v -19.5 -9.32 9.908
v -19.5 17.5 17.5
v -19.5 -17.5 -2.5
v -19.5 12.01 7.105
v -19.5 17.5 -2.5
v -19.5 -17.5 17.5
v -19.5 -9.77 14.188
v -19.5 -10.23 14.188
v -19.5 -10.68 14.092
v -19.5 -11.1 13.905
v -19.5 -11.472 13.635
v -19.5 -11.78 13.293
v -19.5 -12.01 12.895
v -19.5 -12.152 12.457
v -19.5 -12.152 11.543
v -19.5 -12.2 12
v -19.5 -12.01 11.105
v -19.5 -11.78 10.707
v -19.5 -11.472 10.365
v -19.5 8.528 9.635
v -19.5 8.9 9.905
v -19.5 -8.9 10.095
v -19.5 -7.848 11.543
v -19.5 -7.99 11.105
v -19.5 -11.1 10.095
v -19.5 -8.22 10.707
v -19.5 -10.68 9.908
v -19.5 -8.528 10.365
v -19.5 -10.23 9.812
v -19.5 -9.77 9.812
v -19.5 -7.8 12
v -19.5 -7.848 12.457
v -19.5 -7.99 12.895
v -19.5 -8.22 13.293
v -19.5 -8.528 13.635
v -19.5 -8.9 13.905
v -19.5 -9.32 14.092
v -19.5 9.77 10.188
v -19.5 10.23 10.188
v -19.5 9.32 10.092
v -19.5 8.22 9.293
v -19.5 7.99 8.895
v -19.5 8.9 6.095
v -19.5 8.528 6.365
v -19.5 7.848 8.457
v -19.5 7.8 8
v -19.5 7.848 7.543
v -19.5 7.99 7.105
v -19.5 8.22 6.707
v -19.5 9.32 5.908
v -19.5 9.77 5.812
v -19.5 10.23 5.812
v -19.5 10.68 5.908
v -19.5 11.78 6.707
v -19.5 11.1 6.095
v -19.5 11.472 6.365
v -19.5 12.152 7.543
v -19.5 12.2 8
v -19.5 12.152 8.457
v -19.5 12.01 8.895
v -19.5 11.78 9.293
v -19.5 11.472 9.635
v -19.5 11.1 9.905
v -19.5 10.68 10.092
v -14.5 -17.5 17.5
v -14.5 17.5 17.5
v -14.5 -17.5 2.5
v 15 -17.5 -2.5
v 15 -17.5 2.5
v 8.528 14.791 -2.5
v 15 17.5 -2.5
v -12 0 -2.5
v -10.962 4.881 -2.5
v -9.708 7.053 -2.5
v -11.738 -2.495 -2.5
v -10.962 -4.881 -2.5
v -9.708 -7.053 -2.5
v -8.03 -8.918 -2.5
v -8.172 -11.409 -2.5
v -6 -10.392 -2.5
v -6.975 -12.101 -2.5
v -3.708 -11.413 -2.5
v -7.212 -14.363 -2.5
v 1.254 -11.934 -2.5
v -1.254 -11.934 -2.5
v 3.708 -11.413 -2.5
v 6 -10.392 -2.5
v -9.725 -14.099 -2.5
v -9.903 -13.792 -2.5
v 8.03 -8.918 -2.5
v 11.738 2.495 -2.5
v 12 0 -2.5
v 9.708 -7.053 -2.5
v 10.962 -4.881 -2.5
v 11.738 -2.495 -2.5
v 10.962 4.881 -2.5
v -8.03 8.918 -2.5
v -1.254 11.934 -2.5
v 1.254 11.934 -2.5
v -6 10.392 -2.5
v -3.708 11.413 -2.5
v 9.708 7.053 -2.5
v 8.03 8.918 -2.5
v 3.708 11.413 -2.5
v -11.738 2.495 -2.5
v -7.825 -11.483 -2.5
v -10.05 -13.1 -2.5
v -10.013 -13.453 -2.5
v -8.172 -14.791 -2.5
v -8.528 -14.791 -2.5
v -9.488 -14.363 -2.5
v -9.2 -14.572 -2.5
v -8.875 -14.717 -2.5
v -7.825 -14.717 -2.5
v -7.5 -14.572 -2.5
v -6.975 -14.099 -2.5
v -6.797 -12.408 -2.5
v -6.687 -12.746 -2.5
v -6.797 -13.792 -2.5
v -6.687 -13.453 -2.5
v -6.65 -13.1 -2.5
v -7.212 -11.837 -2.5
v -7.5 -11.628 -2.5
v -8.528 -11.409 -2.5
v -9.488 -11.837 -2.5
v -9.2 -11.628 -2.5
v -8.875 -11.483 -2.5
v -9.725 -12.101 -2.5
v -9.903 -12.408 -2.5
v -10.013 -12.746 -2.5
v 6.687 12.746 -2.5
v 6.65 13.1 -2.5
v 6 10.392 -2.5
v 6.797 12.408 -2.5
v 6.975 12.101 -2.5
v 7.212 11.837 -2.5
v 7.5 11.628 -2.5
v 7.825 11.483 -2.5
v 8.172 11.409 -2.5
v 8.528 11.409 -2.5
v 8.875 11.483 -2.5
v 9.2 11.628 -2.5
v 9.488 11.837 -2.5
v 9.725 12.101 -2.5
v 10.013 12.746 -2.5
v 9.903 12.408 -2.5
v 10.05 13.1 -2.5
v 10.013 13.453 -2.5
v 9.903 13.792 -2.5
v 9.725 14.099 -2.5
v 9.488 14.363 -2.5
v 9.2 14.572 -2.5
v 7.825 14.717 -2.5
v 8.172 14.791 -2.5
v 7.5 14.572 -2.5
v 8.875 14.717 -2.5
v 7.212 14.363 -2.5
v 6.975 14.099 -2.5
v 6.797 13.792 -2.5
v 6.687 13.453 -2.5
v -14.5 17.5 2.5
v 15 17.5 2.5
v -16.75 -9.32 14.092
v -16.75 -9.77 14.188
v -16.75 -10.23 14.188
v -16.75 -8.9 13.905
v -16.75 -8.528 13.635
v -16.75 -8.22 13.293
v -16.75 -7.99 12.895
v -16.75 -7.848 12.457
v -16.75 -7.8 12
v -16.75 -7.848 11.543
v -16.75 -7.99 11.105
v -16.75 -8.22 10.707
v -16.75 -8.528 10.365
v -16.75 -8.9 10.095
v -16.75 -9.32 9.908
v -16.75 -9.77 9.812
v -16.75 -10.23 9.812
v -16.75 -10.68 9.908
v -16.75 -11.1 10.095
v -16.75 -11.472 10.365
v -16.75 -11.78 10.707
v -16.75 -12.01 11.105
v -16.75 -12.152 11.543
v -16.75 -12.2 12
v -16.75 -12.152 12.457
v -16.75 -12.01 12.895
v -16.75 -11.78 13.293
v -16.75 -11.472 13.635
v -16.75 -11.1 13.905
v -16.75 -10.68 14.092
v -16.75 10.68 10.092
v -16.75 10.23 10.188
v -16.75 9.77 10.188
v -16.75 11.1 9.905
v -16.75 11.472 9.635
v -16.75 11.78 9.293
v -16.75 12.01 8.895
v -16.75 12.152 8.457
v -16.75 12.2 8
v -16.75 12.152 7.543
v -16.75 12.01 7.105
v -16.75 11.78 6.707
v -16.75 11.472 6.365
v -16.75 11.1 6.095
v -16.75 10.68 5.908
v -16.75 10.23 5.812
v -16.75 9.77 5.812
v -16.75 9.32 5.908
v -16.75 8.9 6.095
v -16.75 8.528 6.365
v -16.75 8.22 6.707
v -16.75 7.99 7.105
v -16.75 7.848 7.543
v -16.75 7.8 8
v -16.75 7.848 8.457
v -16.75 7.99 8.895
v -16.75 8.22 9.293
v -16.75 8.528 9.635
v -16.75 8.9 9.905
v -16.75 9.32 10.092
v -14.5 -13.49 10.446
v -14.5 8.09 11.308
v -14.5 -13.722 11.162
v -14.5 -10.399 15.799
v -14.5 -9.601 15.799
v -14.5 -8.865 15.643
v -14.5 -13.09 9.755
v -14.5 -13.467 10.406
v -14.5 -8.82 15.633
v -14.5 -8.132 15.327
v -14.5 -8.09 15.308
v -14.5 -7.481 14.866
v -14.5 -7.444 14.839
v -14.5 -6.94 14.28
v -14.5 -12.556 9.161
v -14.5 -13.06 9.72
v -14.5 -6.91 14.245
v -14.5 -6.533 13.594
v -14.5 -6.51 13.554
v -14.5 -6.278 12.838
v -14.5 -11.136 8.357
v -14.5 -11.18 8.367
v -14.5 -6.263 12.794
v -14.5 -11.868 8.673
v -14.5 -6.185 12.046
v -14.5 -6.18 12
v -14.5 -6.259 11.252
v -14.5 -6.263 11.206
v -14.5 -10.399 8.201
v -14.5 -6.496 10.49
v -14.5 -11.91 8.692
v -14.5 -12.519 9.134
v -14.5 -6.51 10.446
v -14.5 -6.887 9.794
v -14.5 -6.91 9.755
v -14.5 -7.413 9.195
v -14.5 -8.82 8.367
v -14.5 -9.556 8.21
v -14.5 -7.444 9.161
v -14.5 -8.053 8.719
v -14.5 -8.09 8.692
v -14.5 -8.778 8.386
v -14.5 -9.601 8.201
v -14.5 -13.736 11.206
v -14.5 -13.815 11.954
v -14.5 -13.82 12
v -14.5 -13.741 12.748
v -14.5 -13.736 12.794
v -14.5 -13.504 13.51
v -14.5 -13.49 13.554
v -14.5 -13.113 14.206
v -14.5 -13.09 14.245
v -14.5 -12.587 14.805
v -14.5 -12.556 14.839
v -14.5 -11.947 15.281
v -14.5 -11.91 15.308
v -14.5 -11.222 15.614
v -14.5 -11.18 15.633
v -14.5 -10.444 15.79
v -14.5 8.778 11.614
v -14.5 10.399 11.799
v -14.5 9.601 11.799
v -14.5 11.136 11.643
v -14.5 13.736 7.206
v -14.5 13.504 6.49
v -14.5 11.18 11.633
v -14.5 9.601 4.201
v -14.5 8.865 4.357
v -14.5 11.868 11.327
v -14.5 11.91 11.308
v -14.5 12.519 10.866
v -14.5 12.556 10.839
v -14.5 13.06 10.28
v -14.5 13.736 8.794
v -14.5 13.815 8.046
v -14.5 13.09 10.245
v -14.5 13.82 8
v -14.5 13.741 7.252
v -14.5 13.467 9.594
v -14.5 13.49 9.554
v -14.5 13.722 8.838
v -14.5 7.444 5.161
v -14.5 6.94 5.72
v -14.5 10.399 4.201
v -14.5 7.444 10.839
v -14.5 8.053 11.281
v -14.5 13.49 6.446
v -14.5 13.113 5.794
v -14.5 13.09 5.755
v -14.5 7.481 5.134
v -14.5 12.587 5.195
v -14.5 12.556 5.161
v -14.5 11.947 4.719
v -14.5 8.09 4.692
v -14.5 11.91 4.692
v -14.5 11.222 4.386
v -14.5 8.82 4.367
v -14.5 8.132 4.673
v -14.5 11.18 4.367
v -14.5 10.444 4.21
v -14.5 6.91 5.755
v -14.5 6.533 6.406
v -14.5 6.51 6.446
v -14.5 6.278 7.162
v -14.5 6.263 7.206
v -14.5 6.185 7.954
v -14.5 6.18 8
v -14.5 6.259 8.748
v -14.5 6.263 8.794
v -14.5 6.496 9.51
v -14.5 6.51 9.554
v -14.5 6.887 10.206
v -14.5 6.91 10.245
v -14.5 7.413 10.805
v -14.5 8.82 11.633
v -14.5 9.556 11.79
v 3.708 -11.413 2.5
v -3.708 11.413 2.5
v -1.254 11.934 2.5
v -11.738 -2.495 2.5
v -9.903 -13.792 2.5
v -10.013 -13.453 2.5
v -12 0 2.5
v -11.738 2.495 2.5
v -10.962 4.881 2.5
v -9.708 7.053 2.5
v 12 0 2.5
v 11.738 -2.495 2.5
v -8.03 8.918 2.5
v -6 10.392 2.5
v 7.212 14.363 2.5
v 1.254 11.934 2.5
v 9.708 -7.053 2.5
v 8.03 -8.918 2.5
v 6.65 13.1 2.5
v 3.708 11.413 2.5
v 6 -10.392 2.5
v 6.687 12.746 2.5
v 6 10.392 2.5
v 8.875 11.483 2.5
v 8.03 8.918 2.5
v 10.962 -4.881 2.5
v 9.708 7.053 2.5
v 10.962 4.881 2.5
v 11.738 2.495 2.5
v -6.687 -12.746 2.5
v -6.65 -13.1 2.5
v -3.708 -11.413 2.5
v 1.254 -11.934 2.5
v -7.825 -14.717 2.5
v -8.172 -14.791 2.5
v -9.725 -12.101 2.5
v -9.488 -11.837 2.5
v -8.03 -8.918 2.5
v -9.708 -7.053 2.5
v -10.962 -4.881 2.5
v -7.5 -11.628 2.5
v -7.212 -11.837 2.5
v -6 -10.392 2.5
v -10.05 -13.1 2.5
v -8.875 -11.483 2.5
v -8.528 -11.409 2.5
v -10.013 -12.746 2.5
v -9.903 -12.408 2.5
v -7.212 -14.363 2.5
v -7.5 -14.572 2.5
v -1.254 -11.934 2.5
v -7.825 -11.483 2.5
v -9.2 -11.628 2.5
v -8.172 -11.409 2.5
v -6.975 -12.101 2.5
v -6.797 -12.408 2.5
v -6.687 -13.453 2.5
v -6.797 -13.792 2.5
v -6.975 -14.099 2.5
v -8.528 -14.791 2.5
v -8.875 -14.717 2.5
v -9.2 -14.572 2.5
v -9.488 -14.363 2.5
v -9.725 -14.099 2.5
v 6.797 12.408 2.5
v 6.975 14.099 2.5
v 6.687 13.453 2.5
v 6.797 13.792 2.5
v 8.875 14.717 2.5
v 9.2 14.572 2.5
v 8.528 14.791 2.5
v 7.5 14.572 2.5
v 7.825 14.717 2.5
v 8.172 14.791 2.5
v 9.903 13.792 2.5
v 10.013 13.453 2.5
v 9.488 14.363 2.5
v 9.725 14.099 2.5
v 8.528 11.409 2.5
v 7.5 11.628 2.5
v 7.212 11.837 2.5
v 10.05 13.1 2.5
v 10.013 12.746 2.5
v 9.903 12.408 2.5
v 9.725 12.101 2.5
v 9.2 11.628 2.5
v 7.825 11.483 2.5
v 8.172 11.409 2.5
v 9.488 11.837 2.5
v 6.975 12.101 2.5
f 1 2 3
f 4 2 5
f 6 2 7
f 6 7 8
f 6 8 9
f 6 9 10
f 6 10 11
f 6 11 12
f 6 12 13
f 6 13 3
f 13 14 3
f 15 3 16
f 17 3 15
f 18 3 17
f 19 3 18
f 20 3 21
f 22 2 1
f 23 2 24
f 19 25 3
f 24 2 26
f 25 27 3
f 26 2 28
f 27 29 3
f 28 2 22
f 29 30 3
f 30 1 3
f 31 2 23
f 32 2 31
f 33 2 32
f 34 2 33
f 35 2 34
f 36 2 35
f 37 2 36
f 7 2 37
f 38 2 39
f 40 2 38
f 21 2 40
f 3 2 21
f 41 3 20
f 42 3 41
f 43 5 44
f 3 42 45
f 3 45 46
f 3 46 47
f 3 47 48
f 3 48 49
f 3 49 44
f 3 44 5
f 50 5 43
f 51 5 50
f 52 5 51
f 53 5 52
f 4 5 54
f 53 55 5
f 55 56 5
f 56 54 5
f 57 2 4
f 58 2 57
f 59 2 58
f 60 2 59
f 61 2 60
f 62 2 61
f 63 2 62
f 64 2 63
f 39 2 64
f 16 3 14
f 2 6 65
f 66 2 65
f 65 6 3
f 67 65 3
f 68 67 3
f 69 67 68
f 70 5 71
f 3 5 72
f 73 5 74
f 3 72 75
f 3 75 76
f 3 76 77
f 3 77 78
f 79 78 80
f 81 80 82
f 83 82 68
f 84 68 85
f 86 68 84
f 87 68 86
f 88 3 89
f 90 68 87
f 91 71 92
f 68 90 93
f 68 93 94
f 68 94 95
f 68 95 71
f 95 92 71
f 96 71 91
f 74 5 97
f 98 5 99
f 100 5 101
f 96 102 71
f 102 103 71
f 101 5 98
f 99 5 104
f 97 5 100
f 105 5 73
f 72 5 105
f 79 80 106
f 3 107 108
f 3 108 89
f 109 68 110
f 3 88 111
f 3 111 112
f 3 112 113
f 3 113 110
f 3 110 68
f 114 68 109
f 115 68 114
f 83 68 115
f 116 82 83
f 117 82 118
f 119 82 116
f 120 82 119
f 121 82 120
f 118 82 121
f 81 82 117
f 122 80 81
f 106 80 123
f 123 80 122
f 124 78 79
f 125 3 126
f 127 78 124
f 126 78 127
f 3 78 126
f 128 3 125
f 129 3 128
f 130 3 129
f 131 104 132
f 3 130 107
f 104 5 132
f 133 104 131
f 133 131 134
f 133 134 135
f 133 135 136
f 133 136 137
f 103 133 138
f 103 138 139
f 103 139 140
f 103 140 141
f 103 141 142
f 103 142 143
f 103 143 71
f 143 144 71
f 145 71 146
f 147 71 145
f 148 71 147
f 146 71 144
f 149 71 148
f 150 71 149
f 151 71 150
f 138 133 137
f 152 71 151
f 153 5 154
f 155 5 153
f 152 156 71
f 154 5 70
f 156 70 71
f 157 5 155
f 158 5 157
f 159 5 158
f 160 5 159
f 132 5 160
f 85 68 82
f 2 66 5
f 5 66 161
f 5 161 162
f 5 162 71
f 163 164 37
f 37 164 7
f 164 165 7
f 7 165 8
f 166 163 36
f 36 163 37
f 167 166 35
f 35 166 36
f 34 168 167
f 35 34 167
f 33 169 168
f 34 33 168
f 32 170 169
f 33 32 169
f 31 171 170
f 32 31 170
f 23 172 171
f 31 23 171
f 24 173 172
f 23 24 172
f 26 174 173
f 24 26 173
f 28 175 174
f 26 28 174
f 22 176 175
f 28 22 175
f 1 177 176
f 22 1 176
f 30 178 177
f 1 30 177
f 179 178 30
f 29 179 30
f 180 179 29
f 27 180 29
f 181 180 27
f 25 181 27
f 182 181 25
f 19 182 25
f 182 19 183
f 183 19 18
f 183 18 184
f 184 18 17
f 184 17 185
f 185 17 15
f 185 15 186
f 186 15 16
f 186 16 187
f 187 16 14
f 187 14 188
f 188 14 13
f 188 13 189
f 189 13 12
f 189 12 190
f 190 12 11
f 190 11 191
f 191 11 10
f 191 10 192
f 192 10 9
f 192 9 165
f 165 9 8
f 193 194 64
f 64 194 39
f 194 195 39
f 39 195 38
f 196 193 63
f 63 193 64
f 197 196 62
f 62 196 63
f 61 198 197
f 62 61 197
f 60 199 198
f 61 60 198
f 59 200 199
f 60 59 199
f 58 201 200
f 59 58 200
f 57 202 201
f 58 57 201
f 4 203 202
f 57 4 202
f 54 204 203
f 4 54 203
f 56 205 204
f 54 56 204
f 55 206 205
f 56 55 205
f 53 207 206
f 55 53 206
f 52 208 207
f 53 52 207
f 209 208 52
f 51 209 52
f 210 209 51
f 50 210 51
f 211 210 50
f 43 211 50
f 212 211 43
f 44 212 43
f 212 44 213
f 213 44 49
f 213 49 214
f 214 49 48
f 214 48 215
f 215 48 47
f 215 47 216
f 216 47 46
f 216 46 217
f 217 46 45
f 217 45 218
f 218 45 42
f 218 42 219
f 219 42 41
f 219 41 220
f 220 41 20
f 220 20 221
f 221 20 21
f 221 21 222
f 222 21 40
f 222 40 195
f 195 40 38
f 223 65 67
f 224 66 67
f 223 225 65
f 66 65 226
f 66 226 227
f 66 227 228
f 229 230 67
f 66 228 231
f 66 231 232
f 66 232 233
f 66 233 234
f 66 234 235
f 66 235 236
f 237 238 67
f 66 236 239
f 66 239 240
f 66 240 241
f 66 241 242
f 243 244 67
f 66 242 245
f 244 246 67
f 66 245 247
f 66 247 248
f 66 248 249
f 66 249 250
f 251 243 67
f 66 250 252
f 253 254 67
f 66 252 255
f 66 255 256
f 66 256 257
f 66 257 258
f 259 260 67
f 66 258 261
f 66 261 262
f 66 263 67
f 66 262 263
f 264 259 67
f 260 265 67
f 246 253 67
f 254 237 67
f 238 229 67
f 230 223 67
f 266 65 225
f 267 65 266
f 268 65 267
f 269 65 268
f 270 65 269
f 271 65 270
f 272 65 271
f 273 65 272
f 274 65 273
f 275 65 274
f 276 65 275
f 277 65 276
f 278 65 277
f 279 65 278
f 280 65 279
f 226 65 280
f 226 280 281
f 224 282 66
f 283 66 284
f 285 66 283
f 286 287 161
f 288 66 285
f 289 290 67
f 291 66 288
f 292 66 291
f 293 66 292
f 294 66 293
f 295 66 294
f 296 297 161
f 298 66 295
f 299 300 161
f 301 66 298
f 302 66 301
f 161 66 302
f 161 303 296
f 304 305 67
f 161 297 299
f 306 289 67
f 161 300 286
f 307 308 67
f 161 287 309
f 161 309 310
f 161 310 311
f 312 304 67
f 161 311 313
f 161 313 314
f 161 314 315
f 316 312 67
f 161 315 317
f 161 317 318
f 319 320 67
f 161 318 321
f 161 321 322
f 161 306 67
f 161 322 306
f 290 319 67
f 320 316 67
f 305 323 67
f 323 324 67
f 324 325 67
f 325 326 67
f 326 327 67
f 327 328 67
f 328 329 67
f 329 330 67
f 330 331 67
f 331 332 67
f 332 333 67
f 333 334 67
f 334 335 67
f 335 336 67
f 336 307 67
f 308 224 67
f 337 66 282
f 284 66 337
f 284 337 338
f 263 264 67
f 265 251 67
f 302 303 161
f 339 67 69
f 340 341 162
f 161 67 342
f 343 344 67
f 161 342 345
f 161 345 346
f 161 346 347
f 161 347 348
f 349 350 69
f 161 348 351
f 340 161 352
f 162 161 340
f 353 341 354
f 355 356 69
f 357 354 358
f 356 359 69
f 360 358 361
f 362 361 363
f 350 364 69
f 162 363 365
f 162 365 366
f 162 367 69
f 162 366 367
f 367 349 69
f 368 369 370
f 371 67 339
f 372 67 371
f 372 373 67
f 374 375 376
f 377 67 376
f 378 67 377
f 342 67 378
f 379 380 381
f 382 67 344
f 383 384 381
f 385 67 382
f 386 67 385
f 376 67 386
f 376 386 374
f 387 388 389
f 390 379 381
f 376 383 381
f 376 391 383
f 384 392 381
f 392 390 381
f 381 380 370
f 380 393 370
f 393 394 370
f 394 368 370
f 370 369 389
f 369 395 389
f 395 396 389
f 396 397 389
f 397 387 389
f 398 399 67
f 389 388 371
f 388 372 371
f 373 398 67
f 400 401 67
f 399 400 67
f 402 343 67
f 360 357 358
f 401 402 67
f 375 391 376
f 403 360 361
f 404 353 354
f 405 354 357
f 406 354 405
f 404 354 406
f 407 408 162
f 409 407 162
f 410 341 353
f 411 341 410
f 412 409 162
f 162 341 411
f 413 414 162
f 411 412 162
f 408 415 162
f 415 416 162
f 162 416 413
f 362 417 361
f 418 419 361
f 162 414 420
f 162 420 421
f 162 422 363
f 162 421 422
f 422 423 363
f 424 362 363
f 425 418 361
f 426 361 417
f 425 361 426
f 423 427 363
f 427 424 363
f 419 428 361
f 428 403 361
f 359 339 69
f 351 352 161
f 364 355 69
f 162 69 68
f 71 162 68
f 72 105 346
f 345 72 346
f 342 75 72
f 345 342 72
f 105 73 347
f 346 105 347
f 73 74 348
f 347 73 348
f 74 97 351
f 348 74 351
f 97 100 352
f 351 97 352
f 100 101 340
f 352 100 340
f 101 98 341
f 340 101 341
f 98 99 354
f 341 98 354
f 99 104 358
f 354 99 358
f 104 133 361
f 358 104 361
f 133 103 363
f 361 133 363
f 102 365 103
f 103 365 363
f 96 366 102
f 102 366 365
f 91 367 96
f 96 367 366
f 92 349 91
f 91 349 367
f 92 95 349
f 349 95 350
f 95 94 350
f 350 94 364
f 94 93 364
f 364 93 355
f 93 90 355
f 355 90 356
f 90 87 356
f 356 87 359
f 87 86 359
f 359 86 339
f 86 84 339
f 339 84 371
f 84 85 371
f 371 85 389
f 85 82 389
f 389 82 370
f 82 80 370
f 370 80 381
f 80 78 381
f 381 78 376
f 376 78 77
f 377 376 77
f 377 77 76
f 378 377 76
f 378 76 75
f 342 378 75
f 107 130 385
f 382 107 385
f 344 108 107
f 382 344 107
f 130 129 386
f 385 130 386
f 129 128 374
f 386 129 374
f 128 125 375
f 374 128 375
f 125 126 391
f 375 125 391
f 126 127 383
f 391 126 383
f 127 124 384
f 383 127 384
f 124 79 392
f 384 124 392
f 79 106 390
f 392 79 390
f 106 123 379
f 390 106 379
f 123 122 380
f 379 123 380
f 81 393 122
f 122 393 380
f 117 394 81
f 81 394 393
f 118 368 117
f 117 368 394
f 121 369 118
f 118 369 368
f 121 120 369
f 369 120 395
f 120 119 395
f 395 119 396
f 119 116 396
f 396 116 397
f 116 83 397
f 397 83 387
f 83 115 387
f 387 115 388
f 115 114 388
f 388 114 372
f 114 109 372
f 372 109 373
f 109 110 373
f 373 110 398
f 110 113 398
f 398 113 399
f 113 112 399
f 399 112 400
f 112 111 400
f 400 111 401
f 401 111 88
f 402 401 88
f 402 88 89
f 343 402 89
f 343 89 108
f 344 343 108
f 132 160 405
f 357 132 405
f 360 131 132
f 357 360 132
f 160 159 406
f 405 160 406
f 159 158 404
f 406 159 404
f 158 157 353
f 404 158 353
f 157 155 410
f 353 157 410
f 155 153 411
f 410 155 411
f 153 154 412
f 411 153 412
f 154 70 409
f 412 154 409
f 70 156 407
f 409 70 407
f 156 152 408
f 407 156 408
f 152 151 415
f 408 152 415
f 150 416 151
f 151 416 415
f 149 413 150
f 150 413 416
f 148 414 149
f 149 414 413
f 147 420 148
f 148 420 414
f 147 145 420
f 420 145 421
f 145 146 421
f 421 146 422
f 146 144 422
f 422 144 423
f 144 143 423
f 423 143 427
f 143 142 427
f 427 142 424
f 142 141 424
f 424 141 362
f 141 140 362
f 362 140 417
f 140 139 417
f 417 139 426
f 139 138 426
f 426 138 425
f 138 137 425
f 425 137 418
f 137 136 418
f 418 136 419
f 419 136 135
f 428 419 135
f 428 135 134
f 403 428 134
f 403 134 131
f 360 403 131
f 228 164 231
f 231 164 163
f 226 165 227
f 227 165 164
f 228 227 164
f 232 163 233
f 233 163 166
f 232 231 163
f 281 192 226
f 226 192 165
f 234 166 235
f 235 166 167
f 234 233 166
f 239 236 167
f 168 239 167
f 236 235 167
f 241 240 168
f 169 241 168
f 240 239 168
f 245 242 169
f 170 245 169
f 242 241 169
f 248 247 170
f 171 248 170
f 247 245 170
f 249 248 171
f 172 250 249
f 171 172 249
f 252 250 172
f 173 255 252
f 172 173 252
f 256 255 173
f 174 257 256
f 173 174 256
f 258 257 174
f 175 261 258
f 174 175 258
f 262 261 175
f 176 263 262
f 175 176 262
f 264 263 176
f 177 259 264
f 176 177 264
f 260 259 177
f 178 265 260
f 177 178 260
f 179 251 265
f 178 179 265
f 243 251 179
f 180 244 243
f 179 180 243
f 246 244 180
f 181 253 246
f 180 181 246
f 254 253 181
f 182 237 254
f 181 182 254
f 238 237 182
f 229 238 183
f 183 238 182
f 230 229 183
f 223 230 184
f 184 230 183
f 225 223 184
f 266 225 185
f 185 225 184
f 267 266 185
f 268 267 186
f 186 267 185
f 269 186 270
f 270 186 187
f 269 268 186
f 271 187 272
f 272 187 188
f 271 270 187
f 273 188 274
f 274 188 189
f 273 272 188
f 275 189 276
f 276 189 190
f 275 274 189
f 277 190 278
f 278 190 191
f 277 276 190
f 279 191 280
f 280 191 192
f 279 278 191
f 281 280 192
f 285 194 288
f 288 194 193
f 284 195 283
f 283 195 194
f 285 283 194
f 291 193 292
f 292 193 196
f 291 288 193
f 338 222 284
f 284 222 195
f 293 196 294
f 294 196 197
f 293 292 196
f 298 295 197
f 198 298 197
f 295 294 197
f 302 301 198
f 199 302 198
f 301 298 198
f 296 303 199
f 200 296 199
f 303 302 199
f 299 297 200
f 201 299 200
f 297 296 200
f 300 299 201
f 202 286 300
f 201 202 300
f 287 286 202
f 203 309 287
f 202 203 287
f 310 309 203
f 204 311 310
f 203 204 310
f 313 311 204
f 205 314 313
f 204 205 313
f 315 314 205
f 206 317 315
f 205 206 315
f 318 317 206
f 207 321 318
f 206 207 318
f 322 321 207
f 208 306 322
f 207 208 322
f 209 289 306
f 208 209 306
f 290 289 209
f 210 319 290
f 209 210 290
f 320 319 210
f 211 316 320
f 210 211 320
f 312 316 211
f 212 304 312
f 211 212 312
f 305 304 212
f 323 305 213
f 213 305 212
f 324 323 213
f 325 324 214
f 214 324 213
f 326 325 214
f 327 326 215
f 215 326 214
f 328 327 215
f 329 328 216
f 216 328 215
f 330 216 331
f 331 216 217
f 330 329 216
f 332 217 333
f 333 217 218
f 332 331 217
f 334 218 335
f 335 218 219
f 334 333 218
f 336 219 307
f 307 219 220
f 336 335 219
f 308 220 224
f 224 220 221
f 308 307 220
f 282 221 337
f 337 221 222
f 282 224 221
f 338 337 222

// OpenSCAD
rotate([-90,0,0])
difference()
{
union()
{
cube([30, 5, 35], center=true);


translate([-17, -7.5, 0])
cube([5, 20, 35], center=true);
}

translate([-16.7/2, 0, -26.2/2])
	rotate([90,0,0])
		cylinder(r=1.7, h=40, center=true, $fn=30);

translate([16.7/2, 0, 26.2/2])
	rotate([90,0,0])
		cylinder(r=1.7, h=40, center=true, $fn=30);

rotate([90,0,0])
	cylinder(r=24/2, h=40, center=true, $fn=30);


translate([-15.5, -8, 10])
	rotate([0,90,0])
{
	cylinder(r=2.2, h=40, center=true, $fn=30);
	cylinder(r1=2.2, r2 = 4, h=2.5, center=true, $fn=30);
}

translate([-15.5, -12, -10])
	rotate([0,90,0])
{
	cylinder(r=2.2, h=40, center=true, $fn=30);
	cylinder(r1=2.2, r2 = 4, h=2.5, center=true, $fn=30);
}
}
